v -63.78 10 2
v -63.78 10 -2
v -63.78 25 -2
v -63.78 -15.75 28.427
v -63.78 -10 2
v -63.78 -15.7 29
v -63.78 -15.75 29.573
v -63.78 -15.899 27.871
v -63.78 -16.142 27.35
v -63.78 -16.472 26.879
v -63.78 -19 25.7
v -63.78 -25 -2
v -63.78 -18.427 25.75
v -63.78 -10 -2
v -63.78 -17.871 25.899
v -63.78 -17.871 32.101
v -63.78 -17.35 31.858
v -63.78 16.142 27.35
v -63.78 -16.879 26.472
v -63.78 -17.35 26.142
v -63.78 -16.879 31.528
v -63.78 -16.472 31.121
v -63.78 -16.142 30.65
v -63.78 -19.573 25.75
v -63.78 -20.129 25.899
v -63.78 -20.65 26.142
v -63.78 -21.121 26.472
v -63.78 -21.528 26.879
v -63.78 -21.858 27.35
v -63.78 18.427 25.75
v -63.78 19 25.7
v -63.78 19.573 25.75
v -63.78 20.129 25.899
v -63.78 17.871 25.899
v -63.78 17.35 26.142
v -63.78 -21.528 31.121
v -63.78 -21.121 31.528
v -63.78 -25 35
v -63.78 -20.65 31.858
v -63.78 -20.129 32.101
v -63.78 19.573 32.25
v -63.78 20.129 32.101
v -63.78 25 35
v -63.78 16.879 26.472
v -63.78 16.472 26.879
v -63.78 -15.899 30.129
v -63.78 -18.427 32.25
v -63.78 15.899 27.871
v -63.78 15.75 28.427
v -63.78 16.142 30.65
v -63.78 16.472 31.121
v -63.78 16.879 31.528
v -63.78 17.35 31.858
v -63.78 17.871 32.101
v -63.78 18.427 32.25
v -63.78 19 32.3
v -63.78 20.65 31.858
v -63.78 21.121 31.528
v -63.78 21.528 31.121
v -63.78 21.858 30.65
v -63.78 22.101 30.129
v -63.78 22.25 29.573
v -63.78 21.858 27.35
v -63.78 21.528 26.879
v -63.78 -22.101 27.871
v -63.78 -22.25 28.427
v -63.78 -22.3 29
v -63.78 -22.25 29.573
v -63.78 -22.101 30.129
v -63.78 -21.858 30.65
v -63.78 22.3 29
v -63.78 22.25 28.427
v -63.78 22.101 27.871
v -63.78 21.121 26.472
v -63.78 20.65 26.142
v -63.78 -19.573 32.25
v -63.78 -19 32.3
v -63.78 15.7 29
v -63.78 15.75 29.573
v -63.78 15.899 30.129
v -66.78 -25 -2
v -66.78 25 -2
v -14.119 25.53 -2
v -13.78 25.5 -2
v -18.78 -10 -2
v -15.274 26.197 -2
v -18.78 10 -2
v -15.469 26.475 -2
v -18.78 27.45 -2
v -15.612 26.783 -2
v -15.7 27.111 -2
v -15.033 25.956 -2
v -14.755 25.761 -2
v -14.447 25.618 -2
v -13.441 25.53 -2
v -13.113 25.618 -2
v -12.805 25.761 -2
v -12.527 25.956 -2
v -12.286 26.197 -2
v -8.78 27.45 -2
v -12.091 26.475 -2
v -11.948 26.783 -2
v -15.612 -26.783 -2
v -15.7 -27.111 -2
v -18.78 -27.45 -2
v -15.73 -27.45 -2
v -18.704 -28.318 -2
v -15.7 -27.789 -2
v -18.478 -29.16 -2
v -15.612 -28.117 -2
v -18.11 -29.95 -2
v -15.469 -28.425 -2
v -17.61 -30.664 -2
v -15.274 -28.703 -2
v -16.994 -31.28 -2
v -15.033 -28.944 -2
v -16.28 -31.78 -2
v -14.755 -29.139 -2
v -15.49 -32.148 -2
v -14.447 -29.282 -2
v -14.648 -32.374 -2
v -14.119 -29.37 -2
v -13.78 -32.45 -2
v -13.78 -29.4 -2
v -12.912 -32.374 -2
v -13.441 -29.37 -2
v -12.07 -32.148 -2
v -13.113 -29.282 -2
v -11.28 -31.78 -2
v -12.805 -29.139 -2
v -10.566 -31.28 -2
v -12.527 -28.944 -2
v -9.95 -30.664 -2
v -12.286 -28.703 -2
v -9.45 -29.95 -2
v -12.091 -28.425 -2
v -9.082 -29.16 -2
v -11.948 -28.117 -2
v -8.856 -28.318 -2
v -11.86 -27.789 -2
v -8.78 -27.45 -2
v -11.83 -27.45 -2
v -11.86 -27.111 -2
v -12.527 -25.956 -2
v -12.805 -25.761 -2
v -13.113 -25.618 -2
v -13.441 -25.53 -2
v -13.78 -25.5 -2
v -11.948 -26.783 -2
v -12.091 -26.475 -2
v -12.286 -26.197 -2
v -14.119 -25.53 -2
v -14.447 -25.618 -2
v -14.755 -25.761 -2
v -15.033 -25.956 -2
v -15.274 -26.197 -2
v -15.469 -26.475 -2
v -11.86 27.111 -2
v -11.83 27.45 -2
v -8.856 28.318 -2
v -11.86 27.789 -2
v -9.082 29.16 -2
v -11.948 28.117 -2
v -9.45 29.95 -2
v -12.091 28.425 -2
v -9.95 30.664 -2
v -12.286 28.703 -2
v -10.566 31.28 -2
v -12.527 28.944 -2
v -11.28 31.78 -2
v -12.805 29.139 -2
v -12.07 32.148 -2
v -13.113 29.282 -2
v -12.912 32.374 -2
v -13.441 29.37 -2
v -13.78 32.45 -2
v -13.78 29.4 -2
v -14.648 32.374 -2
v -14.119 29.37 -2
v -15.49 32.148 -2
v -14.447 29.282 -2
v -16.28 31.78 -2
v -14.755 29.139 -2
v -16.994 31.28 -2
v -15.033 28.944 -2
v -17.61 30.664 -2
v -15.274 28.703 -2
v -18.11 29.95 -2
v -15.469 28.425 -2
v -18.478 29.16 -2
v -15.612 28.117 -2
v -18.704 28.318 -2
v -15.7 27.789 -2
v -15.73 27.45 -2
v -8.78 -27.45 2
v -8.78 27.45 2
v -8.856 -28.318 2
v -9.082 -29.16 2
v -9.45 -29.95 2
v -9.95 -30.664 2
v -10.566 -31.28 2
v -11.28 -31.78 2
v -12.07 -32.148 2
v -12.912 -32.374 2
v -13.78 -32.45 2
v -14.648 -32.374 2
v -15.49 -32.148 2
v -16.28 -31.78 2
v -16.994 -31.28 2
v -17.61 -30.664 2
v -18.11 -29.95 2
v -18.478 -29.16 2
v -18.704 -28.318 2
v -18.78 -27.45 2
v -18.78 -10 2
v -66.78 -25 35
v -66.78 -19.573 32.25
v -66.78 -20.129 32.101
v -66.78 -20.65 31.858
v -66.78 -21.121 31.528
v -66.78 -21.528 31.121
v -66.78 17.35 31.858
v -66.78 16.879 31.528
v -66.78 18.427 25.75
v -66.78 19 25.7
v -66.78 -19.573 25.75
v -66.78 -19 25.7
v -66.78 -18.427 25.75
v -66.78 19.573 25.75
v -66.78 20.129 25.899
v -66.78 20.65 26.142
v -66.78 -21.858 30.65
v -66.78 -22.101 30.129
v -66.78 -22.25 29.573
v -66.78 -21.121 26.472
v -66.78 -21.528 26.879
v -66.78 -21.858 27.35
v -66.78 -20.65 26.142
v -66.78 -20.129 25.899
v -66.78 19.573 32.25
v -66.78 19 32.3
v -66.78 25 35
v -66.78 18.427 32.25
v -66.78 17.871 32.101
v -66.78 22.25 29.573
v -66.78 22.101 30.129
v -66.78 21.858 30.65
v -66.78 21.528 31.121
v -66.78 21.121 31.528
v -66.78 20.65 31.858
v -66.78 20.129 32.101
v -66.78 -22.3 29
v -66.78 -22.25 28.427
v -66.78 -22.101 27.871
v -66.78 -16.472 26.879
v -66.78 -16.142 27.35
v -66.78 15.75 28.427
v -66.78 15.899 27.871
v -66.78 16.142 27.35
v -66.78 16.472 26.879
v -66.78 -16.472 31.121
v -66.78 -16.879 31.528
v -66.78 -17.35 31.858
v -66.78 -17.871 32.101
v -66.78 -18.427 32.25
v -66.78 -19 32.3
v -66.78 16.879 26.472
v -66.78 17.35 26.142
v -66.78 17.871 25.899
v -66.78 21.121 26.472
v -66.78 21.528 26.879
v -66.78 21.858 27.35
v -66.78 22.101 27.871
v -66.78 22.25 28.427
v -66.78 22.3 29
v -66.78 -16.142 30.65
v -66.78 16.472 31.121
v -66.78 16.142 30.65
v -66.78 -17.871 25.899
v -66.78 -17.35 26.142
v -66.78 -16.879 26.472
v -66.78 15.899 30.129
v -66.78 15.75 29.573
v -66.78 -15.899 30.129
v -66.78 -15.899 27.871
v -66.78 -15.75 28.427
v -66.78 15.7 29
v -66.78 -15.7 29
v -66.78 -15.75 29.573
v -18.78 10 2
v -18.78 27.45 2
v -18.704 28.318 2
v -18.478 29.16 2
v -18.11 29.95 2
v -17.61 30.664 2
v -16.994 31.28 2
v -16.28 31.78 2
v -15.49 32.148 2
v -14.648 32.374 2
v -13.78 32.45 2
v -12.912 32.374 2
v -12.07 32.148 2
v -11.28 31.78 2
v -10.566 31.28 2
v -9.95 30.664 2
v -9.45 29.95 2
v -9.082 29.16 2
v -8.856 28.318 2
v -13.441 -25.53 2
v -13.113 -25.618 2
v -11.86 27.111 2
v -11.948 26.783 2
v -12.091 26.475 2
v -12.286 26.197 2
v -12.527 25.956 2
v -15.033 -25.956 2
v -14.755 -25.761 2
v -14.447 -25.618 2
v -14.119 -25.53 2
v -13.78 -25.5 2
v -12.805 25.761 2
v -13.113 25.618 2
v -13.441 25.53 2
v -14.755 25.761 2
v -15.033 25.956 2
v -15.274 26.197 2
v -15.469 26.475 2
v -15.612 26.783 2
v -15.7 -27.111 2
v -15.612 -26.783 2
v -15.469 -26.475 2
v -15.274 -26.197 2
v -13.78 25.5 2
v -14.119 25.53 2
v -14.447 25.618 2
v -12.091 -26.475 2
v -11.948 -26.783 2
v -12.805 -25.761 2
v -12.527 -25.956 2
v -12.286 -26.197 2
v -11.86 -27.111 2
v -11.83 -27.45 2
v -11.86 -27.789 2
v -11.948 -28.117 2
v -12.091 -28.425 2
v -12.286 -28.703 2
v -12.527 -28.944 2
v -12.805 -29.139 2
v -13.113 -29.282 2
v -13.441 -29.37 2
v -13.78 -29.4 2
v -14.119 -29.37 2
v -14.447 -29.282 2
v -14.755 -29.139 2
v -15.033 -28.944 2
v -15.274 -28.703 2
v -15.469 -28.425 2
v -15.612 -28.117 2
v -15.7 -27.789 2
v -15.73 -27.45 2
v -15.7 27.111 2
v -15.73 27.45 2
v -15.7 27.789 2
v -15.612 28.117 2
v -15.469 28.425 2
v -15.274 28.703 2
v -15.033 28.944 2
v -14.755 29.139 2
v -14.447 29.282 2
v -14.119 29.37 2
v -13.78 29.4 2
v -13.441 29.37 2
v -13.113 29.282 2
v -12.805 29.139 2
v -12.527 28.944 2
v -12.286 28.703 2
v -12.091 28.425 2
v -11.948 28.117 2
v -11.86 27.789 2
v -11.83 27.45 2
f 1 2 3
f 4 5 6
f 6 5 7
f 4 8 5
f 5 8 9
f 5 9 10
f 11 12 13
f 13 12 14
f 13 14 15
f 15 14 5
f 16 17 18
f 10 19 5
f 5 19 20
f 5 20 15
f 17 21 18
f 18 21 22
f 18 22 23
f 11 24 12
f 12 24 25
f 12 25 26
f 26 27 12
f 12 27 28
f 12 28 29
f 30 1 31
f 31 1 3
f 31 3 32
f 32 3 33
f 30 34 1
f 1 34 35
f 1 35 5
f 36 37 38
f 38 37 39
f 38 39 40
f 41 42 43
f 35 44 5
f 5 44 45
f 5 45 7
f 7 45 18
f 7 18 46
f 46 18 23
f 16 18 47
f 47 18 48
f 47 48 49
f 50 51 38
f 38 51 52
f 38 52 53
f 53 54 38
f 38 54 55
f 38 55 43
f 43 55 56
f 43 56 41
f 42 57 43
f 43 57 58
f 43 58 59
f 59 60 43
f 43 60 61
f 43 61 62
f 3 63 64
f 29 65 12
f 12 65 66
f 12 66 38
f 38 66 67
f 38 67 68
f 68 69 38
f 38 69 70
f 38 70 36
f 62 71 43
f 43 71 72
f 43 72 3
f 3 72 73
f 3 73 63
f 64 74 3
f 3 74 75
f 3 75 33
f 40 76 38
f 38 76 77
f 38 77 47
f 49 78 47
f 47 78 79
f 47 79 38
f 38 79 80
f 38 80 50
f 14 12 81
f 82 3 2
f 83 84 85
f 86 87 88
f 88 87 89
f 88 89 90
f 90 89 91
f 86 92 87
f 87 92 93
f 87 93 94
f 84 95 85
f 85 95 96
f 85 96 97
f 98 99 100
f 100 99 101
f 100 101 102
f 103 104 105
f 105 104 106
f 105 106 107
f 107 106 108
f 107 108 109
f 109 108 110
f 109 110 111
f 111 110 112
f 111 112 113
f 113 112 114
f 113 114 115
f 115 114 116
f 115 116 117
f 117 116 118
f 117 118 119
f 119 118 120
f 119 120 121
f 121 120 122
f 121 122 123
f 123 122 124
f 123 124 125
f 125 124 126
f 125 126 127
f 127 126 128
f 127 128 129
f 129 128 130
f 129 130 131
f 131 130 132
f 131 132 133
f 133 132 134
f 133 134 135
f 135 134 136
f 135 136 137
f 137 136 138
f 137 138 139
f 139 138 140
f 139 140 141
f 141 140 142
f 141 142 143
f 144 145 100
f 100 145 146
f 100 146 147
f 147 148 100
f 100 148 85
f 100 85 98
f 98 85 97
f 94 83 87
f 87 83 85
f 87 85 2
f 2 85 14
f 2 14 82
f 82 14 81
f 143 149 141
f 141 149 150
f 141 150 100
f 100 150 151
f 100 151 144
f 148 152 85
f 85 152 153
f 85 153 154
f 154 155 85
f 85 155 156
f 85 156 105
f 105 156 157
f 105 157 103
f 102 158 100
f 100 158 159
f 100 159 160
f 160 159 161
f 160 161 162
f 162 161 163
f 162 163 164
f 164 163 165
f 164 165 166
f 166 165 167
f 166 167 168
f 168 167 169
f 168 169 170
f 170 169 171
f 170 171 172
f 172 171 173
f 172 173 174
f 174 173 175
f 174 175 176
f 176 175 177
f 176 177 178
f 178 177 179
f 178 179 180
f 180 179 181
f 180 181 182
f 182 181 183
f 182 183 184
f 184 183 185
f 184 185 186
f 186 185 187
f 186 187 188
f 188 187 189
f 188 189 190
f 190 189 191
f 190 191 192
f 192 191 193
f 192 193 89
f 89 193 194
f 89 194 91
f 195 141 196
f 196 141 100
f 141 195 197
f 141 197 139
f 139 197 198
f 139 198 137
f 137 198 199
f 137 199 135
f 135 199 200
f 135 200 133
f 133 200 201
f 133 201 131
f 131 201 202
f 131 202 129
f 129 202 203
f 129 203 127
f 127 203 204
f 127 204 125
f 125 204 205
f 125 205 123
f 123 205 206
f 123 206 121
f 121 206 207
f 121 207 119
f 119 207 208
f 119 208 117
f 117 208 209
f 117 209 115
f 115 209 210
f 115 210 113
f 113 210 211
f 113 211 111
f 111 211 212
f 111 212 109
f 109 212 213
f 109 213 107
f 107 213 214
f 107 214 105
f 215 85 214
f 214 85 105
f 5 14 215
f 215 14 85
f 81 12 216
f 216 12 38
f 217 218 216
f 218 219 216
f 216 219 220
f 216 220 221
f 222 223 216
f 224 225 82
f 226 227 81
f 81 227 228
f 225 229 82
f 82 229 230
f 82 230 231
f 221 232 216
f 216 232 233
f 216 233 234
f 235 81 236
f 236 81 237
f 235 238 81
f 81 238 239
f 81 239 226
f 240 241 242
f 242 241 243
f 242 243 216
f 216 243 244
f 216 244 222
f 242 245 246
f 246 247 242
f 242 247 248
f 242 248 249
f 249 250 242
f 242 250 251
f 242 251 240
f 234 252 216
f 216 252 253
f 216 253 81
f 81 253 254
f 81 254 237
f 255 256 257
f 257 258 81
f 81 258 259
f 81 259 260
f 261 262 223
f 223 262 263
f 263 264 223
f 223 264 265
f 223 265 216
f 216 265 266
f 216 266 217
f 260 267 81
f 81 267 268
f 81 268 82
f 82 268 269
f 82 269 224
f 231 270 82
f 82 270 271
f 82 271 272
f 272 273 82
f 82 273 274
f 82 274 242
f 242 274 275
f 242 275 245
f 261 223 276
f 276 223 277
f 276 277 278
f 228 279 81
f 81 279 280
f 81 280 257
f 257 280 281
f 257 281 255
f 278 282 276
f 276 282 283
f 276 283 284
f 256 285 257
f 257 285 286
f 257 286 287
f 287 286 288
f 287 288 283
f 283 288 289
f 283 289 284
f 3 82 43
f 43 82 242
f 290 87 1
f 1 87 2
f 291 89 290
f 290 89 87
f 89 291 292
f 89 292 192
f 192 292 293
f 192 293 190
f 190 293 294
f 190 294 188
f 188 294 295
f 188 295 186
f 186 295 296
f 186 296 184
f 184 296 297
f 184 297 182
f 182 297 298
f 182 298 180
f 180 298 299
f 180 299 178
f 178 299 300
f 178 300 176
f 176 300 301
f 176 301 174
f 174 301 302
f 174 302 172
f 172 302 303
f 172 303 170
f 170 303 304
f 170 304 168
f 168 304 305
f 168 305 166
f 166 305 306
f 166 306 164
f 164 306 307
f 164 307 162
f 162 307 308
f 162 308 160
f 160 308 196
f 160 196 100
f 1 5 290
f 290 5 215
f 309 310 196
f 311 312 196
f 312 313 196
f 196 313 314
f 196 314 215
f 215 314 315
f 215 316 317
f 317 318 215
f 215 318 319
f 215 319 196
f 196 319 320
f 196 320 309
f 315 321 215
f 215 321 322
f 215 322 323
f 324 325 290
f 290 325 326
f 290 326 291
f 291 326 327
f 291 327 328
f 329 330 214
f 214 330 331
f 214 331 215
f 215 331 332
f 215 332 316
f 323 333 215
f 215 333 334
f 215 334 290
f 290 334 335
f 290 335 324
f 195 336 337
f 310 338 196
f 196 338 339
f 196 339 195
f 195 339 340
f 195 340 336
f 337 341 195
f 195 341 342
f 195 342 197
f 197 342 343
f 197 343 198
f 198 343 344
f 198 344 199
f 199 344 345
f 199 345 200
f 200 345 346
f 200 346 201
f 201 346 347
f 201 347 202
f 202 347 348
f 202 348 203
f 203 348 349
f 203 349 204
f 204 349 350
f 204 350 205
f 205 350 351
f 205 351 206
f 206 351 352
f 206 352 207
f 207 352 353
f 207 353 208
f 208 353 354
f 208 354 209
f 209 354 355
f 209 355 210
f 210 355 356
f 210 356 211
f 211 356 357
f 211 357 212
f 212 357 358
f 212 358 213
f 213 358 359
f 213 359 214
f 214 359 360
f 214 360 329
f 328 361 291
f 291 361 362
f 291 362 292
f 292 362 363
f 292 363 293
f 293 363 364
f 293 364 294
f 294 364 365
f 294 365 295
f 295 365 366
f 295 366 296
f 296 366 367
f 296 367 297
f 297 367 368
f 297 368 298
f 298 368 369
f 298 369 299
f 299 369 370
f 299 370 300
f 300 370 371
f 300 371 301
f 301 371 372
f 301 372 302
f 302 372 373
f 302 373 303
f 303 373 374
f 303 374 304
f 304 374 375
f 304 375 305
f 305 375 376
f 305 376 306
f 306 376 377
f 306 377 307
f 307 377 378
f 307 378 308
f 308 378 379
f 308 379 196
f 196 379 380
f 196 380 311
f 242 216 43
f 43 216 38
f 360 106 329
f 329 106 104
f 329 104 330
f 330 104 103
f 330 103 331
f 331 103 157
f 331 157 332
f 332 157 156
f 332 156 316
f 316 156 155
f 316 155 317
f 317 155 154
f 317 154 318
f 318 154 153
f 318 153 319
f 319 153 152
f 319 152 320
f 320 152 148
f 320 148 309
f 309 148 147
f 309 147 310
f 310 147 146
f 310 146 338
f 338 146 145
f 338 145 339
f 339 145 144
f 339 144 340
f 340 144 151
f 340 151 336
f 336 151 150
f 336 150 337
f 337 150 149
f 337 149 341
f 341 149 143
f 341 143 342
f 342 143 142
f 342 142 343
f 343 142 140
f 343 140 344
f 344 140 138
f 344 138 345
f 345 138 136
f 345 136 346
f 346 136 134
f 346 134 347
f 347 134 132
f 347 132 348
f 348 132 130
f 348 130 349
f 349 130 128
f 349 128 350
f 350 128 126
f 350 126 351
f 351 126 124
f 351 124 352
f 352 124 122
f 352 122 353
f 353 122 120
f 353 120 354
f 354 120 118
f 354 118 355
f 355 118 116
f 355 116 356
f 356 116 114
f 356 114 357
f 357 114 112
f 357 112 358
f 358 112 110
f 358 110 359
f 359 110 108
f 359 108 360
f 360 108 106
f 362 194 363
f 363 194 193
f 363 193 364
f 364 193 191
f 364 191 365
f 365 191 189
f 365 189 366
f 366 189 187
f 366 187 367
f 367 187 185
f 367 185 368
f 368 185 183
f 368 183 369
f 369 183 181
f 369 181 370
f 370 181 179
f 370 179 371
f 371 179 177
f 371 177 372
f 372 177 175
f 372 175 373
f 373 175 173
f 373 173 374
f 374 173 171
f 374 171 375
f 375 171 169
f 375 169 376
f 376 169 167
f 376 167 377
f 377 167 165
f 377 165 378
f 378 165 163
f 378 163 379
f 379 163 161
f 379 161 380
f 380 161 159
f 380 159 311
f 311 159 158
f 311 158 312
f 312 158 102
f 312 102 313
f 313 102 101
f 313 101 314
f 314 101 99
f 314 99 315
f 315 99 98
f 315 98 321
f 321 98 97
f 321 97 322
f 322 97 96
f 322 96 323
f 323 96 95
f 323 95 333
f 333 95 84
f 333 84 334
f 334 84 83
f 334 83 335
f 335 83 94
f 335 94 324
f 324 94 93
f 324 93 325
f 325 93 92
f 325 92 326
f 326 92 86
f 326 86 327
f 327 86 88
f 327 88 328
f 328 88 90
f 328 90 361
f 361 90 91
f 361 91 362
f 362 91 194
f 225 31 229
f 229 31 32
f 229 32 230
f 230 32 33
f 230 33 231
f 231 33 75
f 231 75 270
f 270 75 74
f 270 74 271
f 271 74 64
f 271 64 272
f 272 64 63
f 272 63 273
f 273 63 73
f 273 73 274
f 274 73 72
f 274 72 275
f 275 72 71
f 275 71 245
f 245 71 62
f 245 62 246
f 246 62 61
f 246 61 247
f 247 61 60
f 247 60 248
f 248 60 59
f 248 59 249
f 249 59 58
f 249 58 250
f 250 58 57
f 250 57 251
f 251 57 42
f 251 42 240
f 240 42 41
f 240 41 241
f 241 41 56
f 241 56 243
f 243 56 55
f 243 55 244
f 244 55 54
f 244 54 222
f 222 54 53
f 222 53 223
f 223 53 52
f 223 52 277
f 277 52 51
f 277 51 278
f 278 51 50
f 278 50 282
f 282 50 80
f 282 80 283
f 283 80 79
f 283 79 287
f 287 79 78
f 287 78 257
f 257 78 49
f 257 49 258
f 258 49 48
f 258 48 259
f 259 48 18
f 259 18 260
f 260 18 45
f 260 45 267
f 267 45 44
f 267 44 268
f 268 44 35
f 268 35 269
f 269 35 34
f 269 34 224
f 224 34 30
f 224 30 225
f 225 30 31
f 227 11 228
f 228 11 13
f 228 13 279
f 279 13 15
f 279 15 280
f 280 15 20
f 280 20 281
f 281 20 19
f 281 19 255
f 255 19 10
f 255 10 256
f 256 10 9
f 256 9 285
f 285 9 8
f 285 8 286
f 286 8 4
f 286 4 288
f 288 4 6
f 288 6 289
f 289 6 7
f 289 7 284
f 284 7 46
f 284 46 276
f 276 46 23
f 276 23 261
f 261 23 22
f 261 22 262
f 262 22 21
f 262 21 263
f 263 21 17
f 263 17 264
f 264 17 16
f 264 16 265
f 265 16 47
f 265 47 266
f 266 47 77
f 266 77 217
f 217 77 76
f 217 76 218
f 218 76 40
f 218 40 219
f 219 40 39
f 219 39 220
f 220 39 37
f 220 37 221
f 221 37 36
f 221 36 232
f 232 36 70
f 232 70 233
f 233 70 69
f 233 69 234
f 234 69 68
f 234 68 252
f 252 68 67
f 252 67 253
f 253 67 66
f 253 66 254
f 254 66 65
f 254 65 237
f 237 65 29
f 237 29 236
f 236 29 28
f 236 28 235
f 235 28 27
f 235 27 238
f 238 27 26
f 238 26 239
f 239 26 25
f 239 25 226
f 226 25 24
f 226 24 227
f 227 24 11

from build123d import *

# Parameters (mm, degrees)
BOSS_EXTRUDE2_DEPTH      = 2
BOSS_EXTRUDE2_DEPTH_BACK = 2
SKETCH1_3_W              = 45
SKETCH1_3_H              = 20
BOSS_EXTRUDE3_DEPTH      = 35
M3_5_CLEARANCE_HOLE2_D   = 3.9
M6_CLEARANCE_HOLE2_D     = 6.6


with BuildPart() as part:
    # Sketch1<3> → Boss-Extrude2 (new, two sides: drawn at the far end of the back side and taken through both)
    with BuildSketch(Plane.XY.offset(-BOSS_EXTRUDE2_DEPTH_BACK)):
        with BuildLine():
            Line((-18.78, 17.478483309), (-8.78, 17.478483309))
            Line((-8.78, 17.478483309), (-8.78, 27.45))
            ThreePointArc((-8.78, 27.45), (-13.78, 32.45), (-18.78, 27.45))
            Line((-18.78, 27.45), (-18.78, 17.478483309))
        make_face()
        Polygon((-18.78, -10), (-18.78, -17.478483309), (-8.78, -17.478483309), (-8.78, 17.478483309), (-18.78, 17.478483309), (-18.78, 10), align=None)
        with BuildLine():
            Line((-8.78, -17.478483309), (-18.78, -17.478483309))
            Line((-18.78, -17.478483309), (-18.78, -27.45))
            ThreePointArc((-18.78, -27.45), (-13.78, -32.45), (-8.78, -27.45))
            Line((-8.78, -27.45), (-8.78, -17.478483309))
        make_face()
        with Locations((-41.28, 0)):
            Rectangle(SKETCH1_3_W, SKETCH1_3_H)
        Polygon((-63.78, -25), (-63.78, -10), (-63.78, 10), (-63.78, 25), (-66.78, 25), (-66.78, -25), align=None)
    extrude(amount=BOSS_EXTRUDE2_DEPTH + BOSS_EXTRUDE2_DEPTH_BACK)

    # Sketch1<4> → Boss-Extrude3 (add)
    with BuildSketch(Plane.XY):
        Polygon((-63.78, -25), (-63.78, -10), (-63.78, 10), (-63.78, 25), (-66.78, 25), (-66.78, -25), align=None)
    extrude(amount=BOSS_EXTRUDE3_DEPTH)

    # M3.5 Clearance Hole2 (through all)
    with Locations(Plane(origin=(0, 0, -2), x_dir=(-1, 0, 0), z_dir=(0, 0, -1))):
        with Locations((13.78, 27.45), (13.78, -27.45)):
            Hole(M3_5_CLEARANCE_HOLE2_D / 2)

    # M6 Clearance Hole2 (through all)
    with Locations(Plane(origin=(-63.78, 0, 0), x_dir=(0, 0, -1), z_dir=(1, 0, 0))):
        with Locations((-29, 19)):
            m6_clearance_hole2 = Hole(M6_CLEARANCE_HOLE2_D / 2)

    # Mirror1: M6 Clearance Hole2 across plane
    add(m6_clearance_hole2.mirror(Plane.ZX), mode=Mode.SUBTRACT)


solid = part.part
